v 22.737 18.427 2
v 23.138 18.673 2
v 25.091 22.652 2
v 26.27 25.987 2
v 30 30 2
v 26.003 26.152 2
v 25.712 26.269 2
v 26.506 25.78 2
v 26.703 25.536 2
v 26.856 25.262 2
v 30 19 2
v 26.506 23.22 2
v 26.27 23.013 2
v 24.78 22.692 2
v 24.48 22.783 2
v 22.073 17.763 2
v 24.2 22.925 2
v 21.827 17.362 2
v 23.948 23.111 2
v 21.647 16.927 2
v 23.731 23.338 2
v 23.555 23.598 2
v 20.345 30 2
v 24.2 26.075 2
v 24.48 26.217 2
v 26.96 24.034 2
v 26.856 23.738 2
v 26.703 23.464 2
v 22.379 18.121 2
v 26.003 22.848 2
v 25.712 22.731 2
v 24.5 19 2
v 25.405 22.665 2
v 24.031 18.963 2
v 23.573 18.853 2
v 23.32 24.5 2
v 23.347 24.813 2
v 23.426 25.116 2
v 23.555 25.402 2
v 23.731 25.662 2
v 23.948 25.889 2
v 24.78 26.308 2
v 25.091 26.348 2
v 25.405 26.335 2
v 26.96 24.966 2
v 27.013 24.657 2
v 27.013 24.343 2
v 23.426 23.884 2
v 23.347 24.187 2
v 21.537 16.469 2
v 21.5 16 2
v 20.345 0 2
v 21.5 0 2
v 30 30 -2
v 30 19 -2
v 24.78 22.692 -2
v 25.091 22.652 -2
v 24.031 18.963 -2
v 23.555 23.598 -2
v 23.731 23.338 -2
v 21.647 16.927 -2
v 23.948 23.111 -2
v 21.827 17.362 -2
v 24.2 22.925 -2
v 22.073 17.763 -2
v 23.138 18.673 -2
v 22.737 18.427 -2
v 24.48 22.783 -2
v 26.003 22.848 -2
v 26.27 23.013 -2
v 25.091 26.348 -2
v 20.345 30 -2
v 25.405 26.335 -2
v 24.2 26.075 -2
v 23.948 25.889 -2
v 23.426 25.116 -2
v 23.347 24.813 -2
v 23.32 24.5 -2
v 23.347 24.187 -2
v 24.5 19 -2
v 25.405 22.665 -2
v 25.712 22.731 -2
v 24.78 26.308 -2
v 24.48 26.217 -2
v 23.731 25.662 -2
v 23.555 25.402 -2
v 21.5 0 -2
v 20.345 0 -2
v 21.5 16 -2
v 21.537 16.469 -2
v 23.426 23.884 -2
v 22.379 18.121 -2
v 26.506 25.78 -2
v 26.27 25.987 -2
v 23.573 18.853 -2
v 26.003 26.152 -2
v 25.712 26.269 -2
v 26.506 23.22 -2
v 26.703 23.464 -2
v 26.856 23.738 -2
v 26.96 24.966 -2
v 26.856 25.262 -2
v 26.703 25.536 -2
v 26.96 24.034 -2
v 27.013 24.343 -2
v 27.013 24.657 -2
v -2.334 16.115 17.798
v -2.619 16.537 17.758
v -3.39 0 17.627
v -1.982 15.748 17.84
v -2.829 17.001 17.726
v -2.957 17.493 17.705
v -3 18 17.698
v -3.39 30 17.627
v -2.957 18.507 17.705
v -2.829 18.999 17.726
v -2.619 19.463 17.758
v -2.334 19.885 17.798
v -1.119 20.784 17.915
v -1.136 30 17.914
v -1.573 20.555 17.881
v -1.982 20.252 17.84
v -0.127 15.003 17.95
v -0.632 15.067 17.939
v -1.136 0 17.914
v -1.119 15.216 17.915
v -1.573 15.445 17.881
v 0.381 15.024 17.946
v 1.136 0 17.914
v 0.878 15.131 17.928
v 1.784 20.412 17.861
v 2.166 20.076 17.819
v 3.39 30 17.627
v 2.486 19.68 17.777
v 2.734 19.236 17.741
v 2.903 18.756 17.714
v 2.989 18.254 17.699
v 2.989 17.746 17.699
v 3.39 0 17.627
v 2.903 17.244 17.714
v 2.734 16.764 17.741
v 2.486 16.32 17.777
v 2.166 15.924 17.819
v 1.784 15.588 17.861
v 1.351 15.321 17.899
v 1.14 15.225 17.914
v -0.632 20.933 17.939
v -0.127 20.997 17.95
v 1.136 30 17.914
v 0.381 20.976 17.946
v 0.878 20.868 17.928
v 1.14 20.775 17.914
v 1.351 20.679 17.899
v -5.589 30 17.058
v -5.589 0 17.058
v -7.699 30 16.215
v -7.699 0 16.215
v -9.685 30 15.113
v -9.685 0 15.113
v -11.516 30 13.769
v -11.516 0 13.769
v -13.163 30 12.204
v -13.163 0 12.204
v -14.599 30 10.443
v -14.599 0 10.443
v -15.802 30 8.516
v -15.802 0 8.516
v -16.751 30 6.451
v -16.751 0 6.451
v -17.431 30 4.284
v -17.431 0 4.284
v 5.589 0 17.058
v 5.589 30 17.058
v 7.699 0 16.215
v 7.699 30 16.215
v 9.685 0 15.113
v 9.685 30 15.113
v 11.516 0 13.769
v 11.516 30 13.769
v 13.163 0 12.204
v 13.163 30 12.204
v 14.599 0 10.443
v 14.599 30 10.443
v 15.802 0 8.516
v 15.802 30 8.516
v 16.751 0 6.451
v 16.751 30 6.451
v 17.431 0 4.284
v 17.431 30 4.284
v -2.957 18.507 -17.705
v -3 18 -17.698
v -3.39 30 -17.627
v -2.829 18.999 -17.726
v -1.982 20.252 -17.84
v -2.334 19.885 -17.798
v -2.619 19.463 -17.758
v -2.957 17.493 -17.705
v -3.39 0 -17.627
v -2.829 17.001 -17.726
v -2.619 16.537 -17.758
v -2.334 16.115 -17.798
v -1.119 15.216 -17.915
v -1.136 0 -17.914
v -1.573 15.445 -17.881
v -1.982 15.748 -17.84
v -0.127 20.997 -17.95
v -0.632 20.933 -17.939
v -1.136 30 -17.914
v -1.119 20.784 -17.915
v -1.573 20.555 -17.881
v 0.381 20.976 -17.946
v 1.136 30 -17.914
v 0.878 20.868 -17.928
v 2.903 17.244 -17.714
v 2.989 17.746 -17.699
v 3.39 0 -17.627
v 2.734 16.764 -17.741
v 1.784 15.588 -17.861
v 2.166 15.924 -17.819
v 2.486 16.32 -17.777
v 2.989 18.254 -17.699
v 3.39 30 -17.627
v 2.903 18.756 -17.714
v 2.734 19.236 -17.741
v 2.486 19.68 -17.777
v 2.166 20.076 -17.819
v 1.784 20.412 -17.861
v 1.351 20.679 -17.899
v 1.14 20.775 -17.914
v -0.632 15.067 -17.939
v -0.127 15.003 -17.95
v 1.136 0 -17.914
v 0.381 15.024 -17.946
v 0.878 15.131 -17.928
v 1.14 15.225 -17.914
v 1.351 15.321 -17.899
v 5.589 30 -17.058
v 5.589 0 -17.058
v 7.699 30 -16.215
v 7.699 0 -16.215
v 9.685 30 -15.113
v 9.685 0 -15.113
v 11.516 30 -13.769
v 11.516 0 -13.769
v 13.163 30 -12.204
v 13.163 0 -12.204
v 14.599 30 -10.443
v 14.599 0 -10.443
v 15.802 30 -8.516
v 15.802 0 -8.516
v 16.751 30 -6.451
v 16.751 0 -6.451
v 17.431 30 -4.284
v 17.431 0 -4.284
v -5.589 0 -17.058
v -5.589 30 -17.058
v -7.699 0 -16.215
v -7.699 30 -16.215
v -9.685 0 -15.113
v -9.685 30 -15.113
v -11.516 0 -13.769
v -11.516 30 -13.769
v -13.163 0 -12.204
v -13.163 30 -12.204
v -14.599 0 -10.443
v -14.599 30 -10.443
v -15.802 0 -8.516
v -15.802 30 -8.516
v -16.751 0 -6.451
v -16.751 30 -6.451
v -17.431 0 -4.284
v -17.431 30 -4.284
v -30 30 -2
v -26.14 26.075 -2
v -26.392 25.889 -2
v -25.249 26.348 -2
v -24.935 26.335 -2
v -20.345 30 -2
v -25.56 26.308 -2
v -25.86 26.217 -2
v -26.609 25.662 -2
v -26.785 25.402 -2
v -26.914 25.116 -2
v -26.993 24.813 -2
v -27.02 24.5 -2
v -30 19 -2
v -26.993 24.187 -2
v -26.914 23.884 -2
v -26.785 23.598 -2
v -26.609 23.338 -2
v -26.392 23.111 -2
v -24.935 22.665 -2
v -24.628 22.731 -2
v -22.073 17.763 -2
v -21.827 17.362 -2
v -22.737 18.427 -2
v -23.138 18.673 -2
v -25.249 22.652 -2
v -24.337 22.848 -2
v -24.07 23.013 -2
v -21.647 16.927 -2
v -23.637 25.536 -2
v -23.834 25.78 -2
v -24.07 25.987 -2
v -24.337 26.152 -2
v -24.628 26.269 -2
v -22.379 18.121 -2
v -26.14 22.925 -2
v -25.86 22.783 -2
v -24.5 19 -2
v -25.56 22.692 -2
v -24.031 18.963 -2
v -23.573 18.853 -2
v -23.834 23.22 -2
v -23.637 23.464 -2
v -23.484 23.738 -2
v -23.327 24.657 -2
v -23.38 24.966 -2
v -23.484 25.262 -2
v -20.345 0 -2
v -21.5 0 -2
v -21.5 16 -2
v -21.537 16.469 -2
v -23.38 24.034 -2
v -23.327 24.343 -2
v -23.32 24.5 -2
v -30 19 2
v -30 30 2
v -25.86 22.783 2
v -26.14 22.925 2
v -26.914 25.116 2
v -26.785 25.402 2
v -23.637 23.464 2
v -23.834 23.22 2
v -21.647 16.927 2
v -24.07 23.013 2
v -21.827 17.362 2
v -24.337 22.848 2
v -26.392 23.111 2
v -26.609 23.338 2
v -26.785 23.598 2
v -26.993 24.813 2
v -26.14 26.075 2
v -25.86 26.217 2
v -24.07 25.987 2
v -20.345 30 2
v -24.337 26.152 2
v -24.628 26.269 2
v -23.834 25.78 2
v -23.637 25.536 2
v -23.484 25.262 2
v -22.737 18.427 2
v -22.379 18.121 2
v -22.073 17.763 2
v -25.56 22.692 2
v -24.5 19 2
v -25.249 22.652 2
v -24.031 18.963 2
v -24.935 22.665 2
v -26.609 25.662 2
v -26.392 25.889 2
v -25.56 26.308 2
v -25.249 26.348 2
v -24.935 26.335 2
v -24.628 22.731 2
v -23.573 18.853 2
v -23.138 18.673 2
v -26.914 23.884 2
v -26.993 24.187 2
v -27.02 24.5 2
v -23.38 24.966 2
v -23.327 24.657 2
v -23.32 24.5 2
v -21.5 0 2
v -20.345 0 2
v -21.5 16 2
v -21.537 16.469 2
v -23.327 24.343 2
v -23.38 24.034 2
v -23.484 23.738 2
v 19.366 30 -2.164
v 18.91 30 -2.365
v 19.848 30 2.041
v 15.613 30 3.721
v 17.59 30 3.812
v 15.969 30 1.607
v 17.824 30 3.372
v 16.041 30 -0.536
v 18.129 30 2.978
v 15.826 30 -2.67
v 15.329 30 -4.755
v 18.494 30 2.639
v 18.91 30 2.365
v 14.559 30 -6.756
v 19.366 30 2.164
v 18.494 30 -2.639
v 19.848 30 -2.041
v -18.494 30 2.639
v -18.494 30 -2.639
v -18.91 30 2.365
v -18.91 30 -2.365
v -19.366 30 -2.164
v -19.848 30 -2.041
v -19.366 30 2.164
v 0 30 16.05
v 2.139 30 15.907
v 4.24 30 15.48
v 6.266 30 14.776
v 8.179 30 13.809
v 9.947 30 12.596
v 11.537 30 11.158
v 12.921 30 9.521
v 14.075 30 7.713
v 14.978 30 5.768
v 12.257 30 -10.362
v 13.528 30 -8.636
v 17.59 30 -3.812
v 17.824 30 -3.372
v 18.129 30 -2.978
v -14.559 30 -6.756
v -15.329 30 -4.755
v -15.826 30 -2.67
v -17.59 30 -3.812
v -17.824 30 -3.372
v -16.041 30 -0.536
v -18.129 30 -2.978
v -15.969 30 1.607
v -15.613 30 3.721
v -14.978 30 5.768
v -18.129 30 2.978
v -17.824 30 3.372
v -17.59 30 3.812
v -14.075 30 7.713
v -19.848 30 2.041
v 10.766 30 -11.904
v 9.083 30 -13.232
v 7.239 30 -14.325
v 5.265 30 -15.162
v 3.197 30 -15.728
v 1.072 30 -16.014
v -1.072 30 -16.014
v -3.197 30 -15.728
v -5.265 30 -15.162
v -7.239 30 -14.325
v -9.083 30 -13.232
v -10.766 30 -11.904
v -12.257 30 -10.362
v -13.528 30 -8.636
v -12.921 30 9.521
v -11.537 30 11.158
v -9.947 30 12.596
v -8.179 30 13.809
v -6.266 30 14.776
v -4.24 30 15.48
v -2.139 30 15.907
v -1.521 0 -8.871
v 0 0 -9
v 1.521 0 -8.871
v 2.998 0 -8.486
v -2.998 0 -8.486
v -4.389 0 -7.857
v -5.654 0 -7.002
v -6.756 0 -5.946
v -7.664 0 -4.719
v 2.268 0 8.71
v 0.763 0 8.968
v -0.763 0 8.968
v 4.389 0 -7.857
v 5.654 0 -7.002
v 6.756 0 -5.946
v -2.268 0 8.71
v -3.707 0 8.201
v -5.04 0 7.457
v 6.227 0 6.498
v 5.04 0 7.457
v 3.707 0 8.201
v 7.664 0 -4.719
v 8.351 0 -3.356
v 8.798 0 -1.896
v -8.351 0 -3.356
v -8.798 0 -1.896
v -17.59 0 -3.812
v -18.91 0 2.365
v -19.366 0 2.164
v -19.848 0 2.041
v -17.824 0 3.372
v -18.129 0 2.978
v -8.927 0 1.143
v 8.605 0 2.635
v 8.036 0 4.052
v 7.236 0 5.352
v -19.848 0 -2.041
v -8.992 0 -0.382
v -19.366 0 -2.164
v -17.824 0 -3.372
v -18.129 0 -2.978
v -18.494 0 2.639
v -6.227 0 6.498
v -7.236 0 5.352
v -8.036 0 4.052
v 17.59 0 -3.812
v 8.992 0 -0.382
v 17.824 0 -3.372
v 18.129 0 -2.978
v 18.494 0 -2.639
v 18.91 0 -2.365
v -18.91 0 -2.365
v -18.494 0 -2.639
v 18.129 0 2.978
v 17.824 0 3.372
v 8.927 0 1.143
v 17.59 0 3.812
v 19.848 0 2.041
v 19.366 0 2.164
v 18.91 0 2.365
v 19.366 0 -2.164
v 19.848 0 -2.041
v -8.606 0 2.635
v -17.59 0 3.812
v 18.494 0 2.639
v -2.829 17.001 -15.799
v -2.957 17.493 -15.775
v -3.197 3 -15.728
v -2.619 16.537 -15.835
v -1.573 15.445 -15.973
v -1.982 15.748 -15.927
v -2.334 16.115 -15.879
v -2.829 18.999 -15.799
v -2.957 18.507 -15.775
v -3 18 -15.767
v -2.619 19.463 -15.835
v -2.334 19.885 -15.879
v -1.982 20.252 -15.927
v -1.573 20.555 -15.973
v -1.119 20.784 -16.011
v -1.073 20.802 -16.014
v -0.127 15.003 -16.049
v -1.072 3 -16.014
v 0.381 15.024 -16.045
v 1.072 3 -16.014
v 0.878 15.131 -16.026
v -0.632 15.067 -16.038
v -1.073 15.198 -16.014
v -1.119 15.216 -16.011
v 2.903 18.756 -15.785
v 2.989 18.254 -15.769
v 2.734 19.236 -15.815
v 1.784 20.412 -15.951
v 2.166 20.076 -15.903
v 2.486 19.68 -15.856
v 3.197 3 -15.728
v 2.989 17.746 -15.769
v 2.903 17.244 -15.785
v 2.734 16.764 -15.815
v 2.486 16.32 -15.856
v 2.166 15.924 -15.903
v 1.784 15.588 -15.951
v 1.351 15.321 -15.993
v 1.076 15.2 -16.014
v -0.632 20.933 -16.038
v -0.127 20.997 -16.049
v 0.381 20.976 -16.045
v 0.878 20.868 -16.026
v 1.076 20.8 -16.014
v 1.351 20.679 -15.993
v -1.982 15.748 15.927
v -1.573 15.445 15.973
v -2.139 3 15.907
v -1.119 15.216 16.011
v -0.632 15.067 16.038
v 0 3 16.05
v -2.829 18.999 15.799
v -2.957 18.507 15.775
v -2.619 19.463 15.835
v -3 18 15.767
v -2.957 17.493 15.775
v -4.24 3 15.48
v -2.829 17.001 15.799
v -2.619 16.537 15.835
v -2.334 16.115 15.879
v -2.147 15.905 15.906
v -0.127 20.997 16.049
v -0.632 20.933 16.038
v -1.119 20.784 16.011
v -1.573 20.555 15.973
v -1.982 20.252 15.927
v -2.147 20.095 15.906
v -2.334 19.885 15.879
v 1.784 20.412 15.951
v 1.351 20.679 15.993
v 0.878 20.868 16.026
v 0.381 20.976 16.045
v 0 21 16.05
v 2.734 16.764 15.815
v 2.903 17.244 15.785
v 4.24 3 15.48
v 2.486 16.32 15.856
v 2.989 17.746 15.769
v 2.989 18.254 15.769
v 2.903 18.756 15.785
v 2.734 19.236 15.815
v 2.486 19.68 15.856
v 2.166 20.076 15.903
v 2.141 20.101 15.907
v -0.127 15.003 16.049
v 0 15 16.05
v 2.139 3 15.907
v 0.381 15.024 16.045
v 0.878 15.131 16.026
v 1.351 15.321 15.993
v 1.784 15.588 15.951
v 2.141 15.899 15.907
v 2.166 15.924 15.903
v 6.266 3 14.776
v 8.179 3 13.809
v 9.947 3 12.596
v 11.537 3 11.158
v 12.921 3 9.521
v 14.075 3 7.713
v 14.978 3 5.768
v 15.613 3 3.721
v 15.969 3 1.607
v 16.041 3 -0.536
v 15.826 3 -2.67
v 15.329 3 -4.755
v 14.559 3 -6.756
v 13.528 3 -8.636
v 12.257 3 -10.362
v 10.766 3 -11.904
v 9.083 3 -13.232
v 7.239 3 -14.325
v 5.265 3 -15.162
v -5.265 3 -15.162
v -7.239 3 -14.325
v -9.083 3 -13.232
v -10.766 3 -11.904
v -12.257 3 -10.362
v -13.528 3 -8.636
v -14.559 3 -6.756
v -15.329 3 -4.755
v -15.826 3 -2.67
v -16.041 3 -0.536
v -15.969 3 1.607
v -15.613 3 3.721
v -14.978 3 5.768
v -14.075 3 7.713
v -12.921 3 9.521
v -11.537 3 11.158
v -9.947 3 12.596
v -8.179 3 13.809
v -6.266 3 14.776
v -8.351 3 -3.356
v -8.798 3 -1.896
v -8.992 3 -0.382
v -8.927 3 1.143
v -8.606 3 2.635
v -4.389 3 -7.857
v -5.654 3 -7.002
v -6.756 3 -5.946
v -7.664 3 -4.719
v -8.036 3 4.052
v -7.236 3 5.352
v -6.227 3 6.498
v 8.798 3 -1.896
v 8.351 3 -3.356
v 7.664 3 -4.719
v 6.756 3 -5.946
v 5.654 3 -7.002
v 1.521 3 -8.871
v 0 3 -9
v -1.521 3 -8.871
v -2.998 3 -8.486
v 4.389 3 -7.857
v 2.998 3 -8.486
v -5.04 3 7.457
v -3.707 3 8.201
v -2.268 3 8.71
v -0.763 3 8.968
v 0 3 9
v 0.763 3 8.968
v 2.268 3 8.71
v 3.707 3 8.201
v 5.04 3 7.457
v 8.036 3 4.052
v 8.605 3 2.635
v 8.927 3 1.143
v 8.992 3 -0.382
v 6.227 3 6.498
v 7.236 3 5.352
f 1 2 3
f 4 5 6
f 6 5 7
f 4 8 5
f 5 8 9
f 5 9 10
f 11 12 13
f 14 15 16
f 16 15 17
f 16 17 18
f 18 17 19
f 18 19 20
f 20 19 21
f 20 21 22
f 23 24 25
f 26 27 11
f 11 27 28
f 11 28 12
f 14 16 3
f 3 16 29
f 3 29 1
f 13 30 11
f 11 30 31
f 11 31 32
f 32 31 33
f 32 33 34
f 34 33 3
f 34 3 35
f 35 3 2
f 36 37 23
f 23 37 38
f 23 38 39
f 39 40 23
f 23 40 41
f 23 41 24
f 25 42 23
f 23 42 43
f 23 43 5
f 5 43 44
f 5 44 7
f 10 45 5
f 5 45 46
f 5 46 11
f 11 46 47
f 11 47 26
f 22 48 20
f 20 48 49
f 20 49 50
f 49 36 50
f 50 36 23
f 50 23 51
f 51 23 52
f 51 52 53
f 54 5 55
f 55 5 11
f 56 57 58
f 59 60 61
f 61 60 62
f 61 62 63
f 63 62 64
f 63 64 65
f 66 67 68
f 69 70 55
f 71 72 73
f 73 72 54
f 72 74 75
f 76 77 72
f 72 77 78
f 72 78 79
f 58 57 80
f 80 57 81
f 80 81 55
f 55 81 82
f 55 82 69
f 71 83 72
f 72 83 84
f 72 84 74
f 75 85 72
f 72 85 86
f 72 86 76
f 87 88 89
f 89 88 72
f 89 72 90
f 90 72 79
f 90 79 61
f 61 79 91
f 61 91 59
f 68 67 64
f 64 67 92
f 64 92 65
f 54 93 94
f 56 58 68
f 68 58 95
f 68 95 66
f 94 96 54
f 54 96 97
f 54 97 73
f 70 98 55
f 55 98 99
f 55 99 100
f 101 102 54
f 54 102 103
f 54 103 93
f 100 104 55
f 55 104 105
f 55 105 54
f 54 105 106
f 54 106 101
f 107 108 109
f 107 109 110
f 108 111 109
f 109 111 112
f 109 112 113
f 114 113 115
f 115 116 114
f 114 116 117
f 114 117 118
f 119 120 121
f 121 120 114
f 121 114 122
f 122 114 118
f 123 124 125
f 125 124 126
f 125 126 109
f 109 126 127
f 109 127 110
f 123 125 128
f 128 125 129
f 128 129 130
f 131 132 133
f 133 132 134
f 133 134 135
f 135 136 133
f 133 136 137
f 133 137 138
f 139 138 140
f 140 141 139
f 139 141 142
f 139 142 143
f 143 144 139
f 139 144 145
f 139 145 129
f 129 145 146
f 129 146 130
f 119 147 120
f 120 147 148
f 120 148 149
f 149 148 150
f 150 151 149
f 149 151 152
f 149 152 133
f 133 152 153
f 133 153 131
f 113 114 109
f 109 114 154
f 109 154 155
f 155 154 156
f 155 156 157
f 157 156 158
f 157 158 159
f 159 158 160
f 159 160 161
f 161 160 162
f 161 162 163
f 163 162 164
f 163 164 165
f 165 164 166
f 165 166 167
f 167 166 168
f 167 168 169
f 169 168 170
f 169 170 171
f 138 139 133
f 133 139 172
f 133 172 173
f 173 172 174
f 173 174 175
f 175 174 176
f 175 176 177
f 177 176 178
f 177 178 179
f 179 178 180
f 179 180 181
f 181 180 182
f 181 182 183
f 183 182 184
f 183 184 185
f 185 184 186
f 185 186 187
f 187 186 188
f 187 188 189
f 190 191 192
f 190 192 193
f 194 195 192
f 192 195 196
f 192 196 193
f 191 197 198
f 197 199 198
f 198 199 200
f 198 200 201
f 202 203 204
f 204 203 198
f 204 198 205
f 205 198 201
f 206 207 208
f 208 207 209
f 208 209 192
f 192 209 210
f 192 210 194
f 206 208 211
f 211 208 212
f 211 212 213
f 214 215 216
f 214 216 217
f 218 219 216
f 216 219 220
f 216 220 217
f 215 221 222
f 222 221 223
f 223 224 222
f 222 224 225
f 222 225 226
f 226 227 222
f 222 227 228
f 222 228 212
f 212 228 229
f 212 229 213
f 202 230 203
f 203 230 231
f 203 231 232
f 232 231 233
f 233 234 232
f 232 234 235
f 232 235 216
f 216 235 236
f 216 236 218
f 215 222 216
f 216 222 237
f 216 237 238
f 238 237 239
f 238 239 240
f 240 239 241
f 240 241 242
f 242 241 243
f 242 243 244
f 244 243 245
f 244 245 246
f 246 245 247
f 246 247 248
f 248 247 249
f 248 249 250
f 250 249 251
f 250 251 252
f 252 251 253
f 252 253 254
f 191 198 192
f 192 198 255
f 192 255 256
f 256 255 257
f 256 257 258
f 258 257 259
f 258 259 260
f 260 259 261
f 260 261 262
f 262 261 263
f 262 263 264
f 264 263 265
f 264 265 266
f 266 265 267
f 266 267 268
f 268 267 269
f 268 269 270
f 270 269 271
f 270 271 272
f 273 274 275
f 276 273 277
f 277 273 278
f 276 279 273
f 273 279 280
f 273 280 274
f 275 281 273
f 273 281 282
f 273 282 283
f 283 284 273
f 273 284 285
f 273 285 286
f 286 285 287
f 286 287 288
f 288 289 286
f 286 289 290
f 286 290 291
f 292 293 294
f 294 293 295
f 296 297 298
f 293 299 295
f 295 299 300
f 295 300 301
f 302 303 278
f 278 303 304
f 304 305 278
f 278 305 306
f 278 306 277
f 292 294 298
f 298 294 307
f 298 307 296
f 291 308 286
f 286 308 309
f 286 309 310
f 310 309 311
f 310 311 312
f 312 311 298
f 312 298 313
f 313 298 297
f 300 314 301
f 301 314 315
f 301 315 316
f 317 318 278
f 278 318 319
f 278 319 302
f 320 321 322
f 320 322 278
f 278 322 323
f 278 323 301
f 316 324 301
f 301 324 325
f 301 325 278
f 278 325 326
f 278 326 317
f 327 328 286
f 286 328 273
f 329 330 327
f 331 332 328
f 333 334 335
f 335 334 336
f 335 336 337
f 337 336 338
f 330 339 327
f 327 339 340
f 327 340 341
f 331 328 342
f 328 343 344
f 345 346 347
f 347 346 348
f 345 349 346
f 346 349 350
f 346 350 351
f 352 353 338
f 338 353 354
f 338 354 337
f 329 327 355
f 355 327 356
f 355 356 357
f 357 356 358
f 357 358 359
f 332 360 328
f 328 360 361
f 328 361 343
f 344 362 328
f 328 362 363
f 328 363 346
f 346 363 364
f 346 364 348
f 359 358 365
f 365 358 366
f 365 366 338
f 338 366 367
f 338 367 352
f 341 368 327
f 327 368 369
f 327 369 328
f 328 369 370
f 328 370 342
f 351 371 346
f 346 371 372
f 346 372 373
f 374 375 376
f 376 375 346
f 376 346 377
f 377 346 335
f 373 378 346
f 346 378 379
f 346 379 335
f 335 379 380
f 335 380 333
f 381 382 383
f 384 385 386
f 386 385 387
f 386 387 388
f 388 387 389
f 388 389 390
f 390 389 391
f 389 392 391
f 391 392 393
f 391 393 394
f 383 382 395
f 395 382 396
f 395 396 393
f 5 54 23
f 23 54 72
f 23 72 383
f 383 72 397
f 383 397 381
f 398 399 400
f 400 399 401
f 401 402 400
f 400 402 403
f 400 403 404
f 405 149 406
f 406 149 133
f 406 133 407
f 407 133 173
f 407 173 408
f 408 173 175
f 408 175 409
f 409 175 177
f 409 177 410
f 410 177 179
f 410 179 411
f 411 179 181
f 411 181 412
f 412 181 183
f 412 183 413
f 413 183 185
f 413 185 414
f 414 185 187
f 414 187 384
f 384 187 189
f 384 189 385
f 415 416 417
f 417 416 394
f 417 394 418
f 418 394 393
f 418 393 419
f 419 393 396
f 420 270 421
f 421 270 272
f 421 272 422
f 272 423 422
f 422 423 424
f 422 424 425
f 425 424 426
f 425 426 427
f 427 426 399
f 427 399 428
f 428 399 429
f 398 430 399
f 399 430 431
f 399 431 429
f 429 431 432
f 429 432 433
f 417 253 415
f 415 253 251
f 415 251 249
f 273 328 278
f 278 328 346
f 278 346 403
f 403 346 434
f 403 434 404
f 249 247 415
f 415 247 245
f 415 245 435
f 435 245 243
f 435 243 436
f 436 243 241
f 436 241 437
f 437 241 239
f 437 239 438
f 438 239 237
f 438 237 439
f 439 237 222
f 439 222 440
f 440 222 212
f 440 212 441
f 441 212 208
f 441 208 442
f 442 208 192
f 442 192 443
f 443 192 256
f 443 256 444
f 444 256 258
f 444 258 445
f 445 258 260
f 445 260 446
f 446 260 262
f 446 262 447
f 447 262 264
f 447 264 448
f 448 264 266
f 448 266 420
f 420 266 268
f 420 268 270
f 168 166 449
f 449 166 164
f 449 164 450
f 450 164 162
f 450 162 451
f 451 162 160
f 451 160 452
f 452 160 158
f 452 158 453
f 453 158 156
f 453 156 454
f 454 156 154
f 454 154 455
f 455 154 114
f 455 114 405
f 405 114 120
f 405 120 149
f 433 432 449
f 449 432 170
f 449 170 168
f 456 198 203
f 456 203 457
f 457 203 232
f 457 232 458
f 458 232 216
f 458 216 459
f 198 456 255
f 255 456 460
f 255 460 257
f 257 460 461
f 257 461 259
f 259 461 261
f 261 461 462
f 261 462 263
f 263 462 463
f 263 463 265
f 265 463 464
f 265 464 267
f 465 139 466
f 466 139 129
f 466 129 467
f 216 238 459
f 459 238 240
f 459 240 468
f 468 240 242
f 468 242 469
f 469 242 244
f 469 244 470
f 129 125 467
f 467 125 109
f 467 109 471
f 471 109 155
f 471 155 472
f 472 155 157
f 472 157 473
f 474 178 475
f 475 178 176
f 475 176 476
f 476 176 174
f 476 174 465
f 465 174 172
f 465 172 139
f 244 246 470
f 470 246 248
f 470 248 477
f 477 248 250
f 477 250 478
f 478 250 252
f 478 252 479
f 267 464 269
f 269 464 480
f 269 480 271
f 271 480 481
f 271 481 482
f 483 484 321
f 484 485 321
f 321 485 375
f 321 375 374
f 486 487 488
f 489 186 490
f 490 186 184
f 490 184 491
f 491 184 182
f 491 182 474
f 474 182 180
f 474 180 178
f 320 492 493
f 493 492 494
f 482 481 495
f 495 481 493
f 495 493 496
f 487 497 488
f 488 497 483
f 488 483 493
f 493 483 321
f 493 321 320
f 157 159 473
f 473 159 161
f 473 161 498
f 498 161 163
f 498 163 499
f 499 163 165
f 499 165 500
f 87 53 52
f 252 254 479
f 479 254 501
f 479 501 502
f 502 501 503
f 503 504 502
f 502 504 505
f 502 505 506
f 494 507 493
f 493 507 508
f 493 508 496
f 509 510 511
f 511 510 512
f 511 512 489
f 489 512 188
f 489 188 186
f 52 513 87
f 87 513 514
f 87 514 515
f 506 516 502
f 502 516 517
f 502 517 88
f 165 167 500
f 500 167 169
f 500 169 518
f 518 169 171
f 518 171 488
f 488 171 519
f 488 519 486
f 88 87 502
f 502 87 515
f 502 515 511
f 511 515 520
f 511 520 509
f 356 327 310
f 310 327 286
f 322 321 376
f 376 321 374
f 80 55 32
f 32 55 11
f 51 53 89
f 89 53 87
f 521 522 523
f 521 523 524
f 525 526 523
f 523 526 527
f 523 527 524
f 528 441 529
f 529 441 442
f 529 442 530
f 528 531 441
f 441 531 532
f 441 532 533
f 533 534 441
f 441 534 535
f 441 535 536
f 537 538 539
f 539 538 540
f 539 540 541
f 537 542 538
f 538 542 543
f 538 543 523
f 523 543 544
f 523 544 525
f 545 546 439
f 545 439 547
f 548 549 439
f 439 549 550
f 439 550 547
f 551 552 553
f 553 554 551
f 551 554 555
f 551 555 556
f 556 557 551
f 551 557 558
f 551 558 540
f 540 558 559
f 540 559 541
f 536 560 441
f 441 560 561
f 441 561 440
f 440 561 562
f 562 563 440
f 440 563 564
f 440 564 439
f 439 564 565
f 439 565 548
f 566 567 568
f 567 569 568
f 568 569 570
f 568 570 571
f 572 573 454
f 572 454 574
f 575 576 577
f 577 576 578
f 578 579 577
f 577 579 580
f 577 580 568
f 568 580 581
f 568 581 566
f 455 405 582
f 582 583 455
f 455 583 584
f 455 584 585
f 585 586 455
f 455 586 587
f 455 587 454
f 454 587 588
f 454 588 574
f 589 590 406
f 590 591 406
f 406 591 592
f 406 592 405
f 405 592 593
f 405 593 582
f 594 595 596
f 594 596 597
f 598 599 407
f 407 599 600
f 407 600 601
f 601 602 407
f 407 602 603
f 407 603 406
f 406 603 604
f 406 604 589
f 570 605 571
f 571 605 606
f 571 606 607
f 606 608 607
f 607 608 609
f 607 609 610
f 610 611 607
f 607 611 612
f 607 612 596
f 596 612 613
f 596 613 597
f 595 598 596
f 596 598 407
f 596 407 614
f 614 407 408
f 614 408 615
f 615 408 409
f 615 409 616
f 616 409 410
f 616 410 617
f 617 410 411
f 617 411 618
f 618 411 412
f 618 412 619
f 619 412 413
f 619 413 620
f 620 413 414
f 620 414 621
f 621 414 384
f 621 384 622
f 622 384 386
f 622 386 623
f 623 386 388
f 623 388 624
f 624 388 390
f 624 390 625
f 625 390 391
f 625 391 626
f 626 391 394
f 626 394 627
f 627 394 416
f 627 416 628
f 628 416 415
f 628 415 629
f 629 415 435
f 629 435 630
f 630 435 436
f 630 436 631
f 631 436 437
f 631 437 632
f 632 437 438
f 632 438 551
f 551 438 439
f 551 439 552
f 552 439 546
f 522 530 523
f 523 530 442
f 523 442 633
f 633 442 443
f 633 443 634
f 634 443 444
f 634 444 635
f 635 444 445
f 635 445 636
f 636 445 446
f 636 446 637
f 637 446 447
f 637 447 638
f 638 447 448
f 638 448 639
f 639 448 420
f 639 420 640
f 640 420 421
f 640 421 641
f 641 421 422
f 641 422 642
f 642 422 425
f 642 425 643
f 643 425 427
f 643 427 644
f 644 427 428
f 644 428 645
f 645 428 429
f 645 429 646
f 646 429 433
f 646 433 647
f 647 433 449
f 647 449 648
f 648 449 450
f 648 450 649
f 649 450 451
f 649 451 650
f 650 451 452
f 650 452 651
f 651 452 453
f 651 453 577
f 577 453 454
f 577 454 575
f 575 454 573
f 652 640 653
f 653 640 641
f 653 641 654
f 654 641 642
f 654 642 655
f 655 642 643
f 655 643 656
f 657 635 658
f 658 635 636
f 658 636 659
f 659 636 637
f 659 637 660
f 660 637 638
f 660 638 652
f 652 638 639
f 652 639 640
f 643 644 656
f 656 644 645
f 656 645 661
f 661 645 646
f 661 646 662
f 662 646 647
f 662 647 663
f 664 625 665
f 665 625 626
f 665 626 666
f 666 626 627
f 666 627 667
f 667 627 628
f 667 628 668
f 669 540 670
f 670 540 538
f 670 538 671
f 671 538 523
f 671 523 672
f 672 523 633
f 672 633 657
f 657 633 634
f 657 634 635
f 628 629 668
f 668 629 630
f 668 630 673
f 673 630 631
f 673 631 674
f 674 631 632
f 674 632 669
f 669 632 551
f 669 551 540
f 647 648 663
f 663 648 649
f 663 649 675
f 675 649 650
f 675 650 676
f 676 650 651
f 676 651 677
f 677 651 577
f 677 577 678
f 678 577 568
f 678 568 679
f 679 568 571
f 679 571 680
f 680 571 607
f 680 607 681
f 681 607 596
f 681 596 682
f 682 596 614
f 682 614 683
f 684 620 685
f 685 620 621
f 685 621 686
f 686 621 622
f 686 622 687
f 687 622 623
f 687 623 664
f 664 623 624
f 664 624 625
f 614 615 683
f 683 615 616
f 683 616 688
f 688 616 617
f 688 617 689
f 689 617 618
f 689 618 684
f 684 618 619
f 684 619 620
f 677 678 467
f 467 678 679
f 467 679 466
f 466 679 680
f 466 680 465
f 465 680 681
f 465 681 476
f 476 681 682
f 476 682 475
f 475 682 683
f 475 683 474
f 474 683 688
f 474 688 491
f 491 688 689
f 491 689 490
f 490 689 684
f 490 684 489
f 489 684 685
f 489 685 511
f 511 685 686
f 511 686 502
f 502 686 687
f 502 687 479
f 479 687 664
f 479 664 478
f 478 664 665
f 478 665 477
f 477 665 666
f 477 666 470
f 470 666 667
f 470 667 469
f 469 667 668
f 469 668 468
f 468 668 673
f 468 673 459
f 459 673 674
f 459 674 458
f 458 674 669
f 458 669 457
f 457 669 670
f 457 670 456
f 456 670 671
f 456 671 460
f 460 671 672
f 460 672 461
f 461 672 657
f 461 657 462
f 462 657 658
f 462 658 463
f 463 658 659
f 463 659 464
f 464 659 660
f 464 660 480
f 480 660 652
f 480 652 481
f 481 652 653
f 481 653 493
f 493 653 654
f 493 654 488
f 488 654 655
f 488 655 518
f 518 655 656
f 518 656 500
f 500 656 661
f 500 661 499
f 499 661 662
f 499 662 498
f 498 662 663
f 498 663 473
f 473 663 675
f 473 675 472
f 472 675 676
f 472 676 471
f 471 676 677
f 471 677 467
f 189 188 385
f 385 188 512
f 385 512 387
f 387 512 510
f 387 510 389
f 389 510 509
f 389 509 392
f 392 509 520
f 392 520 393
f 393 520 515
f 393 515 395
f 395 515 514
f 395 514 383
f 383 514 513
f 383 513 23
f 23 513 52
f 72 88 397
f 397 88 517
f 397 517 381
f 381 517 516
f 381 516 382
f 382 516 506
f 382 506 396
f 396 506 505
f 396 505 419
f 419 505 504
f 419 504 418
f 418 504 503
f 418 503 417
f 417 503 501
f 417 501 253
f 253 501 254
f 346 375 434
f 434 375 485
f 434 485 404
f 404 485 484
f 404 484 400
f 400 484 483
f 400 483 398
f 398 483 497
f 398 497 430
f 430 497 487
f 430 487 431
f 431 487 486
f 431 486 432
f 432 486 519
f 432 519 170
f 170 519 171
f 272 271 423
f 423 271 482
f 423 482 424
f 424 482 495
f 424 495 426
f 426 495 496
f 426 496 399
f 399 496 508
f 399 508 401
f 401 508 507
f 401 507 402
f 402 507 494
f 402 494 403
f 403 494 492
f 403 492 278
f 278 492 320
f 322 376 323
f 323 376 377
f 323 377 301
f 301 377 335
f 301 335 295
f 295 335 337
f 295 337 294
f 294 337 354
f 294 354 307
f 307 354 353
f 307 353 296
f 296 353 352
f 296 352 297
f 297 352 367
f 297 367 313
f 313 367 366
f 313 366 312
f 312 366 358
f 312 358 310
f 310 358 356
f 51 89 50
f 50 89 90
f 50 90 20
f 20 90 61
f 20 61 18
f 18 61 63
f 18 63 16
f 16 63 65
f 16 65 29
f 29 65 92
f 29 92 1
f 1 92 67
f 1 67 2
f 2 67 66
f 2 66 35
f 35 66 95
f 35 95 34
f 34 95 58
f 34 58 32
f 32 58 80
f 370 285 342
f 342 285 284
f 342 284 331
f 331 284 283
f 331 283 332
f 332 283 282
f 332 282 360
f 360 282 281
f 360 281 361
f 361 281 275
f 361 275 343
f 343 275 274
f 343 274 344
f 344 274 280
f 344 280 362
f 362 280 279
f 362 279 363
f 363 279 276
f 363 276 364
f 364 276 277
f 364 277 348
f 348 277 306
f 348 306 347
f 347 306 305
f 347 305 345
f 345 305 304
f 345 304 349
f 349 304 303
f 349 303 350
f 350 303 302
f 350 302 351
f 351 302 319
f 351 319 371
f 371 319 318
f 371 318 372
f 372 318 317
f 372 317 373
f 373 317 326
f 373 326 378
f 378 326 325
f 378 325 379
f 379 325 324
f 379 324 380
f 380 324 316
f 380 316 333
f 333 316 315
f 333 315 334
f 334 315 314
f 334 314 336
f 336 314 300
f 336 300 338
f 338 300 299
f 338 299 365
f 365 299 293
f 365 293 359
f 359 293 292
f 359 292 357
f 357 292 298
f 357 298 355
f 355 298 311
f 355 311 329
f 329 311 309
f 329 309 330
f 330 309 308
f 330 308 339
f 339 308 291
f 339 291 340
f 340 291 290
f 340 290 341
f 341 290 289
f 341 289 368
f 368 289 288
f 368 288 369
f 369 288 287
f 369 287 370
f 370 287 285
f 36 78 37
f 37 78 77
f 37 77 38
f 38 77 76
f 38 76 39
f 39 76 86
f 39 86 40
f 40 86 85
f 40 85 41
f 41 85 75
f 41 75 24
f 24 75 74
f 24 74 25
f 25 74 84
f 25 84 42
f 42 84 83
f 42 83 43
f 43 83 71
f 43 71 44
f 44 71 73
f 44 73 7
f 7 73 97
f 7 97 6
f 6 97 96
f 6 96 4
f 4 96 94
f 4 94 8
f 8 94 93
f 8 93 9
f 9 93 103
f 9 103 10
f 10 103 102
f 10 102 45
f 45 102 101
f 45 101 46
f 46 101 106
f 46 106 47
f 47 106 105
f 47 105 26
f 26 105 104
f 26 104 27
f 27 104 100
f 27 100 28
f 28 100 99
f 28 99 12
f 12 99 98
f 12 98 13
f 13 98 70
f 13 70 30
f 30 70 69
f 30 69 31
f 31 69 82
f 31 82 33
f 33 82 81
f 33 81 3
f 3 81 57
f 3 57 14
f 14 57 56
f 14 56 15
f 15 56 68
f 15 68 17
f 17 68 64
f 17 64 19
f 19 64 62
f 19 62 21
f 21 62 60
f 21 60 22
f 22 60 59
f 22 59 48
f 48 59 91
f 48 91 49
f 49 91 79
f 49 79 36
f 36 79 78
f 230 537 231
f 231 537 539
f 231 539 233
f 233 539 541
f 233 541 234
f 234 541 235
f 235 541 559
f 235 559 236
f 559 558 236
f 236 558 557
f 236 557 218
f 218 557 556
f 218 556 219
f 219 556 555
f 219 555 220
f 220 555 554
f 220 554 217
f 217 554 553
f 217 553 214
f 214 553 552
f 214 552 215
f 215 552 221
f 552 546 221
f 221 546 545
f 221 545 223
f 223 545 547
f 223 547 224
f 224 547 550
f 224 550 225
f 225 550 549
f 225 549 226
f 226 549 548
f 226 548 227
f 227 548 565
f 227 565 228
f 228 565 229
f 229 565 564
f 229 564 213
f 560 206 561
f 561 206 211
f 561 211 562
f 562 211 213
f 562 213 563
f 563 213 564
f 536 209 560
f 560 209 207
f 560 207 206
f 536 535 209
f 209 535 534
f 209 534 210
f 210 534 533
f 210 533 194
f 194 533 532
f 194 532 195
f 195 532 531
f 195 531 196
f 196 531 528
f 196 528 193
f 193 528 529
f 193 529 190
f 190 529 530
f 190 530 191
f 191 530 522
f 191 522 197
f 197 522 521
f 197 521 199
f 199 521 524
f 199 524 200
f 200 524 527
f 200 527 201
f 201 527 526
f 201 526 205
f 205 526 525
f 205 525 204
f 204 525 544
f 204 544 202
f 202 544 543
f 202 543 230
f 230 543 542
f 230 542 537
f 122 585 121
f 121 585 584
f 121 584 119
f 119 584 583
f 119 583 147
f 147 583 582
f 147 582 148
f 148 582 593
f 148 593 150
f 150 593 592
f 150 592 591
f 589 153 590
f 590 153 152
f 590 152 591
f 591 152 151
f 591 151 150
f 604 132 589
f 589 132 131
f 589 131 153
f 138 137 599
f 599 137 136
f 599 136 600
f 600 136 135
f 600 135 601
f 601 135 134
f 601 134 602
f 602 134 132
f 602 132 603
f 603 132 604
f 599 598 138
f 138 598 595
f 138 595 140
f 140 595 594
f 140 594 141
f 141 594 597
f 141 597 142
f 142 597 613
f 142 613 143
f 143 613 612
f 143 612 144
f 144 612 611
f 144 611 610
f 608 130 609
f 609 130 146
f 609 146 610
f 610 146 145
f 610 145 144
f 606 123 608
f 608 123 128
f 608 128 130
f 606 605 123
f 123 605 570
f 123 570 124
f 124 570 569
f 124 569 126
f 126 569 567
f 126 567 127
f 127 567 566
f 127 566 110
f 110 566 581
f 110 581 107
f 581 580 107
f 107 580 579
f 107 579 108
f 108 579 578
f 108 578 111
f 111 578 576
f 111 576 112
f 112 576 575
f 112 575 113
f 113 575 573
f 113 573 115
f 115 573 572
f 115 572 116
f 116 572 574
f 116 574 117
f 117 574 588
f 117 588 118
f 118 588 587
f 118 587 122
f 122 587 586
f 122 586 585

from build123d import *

# Parameters (mm, degrees)
BOSS_EXTRUDE1_DEPTH = 30
SKETCH4_W           = 4
SKETCH4_H           = 19
CUT_EXTRUDE3_DEPTH  = 8.5
SKETCH7_R           = 16.05
CUT_EXTRUDE4_DEPTH  = 27
SKETCH6_R           = 9
CUT_EXTRUDE5_DEPTH  = 4
FILLET3_R           = 3
FILLET4_R           = 3
SKETCH8_R           = 1.85
CUT_EXTRUDE6_DEPTH  = 4
SKETCH9_R           = 3
CUT_EXTRUDE7_DEPTH  = 37


with BuildPart() as part:
    # Sketch1 → Boss-Extrude1 (new body)
    with BuildSketch(Plane(origin=(0, 0, 0), x_dir=(1, 0, 0), z_dir=(0, 1, 0))):
        with BuildLine():
            Line((-30, -2), (-30, 2))
            Line((-30, 2), (-17.838231415, 2))
            ThreePointArc((-17.838231415, 2), (0, 17.95), (17.838231415, 2))
            Line((17.838231415, 2), (30, 2))
            Line((30, 2), (30, -2))
            Line((30, -2), (17.838231415, -2))
            ThreePointArc((17.838231415, -2), (0, -17.95), (-17.838231415, -2))
            Line((-17.838231415, -2), (-30, -2))
        make_face()
    extrude(amount=BOSS_EXTRUDE1_DEPTH)

    # Sketch4 → Cut-Extrude3 (cut)
    with BuildSketch(Plane.ZY.offset(30)):
        with Locations((0, 9.5)):
            Rectangle(SKETCH4_W, SKETCH4_H)
    cut_extrude3 = extrude(amount=-CUT_EXTRUDE3_DEPTH, mode=Mode.SUBTRACT)

    # Mirror1: Cut-Extrude3 across plane
    add(cut_extrude3.mirror(Plane(origin=(0, 0, 0), x_dir=(0, 0, 1), z_dir=(1, 0, 0))), mode=Mode.SUBTRACT)

    # Sketch7 → Cut-Extrude4 (cut)
    with BuildSketch(Plane(origin=(0, 30, 0), x_dir=(1, 0, 0), z_dir=(0, 1, 0))):
        with Locations(Location((0, 0, 0), (0, 0, 270))):
            Circle(SKETCH7_R)
    extrude(amount=-CUT_EXTRUDE4_DEPTH, mode=Mode.SUBTRACT)

    # Sketch6 → Cut-Extrude5 (cut)
    with BuildSketch(Plane.XZ):
        with Locations(Location((0, 0, 0), (0, 0, 270))):
            Circle(SKETCH6_R)
    extrude(amount=-CUT_EXTRUDE5_DEPTH, mode=Mode.SUBTRACT)

    # Fillet3
    fillet3_edges = [part.edges().sort_by_distance(p)[0] for p in [
        (-17.838231415, 15, 2),
        (-17.838231415, 15, -2),
        (17.838231415, 15, -2),
        (17.838231415, 15, 2),
    ]]
    fillet(fillet3_edges, radius=FILLET3_R)

    # Fillet4
    fillet4_edges = [part.edges().sort_by_distance(p)[0] for p in [
        (-21.5, 19, 0),
        (21.5, 19, 0),
    ]]
    fillet(fillet4_edges, radius=FILLET4_R)

    # Sketch8 → Cut-Extrude6 (cut)
    with BuildSketch(Plane(origin=(0, 0, -2), x_dir=(-1, 0, 0), z_dir=(0, 0, -1))):
        with Locations((-25.17, 24.5)):
            Circle(SKETCH8_R)
        with Locations(Location((25.17, 24.5, 0), (0, 0, 180))):
            Circle(SKETCH8_R)
    extrude(amount=-CUT_EXTRUDE6_DEPTH, mode=Mode.SUBTRACT)

    # Sketch9 → Cut-Extrude7 (cut)
    with BuildSketch(Plane(origin=(0, 0, -17.95), x_dir=(-1, 0, 0), z_dir=(0, 0, -1))):
        with Locations((0, 18)):
            Circle(SKETCH9_R)
    extrude(amount=-CUT_EXTRUDE7_DEPTH, mode=Mode.SUBTRACT)


solid = part.part
